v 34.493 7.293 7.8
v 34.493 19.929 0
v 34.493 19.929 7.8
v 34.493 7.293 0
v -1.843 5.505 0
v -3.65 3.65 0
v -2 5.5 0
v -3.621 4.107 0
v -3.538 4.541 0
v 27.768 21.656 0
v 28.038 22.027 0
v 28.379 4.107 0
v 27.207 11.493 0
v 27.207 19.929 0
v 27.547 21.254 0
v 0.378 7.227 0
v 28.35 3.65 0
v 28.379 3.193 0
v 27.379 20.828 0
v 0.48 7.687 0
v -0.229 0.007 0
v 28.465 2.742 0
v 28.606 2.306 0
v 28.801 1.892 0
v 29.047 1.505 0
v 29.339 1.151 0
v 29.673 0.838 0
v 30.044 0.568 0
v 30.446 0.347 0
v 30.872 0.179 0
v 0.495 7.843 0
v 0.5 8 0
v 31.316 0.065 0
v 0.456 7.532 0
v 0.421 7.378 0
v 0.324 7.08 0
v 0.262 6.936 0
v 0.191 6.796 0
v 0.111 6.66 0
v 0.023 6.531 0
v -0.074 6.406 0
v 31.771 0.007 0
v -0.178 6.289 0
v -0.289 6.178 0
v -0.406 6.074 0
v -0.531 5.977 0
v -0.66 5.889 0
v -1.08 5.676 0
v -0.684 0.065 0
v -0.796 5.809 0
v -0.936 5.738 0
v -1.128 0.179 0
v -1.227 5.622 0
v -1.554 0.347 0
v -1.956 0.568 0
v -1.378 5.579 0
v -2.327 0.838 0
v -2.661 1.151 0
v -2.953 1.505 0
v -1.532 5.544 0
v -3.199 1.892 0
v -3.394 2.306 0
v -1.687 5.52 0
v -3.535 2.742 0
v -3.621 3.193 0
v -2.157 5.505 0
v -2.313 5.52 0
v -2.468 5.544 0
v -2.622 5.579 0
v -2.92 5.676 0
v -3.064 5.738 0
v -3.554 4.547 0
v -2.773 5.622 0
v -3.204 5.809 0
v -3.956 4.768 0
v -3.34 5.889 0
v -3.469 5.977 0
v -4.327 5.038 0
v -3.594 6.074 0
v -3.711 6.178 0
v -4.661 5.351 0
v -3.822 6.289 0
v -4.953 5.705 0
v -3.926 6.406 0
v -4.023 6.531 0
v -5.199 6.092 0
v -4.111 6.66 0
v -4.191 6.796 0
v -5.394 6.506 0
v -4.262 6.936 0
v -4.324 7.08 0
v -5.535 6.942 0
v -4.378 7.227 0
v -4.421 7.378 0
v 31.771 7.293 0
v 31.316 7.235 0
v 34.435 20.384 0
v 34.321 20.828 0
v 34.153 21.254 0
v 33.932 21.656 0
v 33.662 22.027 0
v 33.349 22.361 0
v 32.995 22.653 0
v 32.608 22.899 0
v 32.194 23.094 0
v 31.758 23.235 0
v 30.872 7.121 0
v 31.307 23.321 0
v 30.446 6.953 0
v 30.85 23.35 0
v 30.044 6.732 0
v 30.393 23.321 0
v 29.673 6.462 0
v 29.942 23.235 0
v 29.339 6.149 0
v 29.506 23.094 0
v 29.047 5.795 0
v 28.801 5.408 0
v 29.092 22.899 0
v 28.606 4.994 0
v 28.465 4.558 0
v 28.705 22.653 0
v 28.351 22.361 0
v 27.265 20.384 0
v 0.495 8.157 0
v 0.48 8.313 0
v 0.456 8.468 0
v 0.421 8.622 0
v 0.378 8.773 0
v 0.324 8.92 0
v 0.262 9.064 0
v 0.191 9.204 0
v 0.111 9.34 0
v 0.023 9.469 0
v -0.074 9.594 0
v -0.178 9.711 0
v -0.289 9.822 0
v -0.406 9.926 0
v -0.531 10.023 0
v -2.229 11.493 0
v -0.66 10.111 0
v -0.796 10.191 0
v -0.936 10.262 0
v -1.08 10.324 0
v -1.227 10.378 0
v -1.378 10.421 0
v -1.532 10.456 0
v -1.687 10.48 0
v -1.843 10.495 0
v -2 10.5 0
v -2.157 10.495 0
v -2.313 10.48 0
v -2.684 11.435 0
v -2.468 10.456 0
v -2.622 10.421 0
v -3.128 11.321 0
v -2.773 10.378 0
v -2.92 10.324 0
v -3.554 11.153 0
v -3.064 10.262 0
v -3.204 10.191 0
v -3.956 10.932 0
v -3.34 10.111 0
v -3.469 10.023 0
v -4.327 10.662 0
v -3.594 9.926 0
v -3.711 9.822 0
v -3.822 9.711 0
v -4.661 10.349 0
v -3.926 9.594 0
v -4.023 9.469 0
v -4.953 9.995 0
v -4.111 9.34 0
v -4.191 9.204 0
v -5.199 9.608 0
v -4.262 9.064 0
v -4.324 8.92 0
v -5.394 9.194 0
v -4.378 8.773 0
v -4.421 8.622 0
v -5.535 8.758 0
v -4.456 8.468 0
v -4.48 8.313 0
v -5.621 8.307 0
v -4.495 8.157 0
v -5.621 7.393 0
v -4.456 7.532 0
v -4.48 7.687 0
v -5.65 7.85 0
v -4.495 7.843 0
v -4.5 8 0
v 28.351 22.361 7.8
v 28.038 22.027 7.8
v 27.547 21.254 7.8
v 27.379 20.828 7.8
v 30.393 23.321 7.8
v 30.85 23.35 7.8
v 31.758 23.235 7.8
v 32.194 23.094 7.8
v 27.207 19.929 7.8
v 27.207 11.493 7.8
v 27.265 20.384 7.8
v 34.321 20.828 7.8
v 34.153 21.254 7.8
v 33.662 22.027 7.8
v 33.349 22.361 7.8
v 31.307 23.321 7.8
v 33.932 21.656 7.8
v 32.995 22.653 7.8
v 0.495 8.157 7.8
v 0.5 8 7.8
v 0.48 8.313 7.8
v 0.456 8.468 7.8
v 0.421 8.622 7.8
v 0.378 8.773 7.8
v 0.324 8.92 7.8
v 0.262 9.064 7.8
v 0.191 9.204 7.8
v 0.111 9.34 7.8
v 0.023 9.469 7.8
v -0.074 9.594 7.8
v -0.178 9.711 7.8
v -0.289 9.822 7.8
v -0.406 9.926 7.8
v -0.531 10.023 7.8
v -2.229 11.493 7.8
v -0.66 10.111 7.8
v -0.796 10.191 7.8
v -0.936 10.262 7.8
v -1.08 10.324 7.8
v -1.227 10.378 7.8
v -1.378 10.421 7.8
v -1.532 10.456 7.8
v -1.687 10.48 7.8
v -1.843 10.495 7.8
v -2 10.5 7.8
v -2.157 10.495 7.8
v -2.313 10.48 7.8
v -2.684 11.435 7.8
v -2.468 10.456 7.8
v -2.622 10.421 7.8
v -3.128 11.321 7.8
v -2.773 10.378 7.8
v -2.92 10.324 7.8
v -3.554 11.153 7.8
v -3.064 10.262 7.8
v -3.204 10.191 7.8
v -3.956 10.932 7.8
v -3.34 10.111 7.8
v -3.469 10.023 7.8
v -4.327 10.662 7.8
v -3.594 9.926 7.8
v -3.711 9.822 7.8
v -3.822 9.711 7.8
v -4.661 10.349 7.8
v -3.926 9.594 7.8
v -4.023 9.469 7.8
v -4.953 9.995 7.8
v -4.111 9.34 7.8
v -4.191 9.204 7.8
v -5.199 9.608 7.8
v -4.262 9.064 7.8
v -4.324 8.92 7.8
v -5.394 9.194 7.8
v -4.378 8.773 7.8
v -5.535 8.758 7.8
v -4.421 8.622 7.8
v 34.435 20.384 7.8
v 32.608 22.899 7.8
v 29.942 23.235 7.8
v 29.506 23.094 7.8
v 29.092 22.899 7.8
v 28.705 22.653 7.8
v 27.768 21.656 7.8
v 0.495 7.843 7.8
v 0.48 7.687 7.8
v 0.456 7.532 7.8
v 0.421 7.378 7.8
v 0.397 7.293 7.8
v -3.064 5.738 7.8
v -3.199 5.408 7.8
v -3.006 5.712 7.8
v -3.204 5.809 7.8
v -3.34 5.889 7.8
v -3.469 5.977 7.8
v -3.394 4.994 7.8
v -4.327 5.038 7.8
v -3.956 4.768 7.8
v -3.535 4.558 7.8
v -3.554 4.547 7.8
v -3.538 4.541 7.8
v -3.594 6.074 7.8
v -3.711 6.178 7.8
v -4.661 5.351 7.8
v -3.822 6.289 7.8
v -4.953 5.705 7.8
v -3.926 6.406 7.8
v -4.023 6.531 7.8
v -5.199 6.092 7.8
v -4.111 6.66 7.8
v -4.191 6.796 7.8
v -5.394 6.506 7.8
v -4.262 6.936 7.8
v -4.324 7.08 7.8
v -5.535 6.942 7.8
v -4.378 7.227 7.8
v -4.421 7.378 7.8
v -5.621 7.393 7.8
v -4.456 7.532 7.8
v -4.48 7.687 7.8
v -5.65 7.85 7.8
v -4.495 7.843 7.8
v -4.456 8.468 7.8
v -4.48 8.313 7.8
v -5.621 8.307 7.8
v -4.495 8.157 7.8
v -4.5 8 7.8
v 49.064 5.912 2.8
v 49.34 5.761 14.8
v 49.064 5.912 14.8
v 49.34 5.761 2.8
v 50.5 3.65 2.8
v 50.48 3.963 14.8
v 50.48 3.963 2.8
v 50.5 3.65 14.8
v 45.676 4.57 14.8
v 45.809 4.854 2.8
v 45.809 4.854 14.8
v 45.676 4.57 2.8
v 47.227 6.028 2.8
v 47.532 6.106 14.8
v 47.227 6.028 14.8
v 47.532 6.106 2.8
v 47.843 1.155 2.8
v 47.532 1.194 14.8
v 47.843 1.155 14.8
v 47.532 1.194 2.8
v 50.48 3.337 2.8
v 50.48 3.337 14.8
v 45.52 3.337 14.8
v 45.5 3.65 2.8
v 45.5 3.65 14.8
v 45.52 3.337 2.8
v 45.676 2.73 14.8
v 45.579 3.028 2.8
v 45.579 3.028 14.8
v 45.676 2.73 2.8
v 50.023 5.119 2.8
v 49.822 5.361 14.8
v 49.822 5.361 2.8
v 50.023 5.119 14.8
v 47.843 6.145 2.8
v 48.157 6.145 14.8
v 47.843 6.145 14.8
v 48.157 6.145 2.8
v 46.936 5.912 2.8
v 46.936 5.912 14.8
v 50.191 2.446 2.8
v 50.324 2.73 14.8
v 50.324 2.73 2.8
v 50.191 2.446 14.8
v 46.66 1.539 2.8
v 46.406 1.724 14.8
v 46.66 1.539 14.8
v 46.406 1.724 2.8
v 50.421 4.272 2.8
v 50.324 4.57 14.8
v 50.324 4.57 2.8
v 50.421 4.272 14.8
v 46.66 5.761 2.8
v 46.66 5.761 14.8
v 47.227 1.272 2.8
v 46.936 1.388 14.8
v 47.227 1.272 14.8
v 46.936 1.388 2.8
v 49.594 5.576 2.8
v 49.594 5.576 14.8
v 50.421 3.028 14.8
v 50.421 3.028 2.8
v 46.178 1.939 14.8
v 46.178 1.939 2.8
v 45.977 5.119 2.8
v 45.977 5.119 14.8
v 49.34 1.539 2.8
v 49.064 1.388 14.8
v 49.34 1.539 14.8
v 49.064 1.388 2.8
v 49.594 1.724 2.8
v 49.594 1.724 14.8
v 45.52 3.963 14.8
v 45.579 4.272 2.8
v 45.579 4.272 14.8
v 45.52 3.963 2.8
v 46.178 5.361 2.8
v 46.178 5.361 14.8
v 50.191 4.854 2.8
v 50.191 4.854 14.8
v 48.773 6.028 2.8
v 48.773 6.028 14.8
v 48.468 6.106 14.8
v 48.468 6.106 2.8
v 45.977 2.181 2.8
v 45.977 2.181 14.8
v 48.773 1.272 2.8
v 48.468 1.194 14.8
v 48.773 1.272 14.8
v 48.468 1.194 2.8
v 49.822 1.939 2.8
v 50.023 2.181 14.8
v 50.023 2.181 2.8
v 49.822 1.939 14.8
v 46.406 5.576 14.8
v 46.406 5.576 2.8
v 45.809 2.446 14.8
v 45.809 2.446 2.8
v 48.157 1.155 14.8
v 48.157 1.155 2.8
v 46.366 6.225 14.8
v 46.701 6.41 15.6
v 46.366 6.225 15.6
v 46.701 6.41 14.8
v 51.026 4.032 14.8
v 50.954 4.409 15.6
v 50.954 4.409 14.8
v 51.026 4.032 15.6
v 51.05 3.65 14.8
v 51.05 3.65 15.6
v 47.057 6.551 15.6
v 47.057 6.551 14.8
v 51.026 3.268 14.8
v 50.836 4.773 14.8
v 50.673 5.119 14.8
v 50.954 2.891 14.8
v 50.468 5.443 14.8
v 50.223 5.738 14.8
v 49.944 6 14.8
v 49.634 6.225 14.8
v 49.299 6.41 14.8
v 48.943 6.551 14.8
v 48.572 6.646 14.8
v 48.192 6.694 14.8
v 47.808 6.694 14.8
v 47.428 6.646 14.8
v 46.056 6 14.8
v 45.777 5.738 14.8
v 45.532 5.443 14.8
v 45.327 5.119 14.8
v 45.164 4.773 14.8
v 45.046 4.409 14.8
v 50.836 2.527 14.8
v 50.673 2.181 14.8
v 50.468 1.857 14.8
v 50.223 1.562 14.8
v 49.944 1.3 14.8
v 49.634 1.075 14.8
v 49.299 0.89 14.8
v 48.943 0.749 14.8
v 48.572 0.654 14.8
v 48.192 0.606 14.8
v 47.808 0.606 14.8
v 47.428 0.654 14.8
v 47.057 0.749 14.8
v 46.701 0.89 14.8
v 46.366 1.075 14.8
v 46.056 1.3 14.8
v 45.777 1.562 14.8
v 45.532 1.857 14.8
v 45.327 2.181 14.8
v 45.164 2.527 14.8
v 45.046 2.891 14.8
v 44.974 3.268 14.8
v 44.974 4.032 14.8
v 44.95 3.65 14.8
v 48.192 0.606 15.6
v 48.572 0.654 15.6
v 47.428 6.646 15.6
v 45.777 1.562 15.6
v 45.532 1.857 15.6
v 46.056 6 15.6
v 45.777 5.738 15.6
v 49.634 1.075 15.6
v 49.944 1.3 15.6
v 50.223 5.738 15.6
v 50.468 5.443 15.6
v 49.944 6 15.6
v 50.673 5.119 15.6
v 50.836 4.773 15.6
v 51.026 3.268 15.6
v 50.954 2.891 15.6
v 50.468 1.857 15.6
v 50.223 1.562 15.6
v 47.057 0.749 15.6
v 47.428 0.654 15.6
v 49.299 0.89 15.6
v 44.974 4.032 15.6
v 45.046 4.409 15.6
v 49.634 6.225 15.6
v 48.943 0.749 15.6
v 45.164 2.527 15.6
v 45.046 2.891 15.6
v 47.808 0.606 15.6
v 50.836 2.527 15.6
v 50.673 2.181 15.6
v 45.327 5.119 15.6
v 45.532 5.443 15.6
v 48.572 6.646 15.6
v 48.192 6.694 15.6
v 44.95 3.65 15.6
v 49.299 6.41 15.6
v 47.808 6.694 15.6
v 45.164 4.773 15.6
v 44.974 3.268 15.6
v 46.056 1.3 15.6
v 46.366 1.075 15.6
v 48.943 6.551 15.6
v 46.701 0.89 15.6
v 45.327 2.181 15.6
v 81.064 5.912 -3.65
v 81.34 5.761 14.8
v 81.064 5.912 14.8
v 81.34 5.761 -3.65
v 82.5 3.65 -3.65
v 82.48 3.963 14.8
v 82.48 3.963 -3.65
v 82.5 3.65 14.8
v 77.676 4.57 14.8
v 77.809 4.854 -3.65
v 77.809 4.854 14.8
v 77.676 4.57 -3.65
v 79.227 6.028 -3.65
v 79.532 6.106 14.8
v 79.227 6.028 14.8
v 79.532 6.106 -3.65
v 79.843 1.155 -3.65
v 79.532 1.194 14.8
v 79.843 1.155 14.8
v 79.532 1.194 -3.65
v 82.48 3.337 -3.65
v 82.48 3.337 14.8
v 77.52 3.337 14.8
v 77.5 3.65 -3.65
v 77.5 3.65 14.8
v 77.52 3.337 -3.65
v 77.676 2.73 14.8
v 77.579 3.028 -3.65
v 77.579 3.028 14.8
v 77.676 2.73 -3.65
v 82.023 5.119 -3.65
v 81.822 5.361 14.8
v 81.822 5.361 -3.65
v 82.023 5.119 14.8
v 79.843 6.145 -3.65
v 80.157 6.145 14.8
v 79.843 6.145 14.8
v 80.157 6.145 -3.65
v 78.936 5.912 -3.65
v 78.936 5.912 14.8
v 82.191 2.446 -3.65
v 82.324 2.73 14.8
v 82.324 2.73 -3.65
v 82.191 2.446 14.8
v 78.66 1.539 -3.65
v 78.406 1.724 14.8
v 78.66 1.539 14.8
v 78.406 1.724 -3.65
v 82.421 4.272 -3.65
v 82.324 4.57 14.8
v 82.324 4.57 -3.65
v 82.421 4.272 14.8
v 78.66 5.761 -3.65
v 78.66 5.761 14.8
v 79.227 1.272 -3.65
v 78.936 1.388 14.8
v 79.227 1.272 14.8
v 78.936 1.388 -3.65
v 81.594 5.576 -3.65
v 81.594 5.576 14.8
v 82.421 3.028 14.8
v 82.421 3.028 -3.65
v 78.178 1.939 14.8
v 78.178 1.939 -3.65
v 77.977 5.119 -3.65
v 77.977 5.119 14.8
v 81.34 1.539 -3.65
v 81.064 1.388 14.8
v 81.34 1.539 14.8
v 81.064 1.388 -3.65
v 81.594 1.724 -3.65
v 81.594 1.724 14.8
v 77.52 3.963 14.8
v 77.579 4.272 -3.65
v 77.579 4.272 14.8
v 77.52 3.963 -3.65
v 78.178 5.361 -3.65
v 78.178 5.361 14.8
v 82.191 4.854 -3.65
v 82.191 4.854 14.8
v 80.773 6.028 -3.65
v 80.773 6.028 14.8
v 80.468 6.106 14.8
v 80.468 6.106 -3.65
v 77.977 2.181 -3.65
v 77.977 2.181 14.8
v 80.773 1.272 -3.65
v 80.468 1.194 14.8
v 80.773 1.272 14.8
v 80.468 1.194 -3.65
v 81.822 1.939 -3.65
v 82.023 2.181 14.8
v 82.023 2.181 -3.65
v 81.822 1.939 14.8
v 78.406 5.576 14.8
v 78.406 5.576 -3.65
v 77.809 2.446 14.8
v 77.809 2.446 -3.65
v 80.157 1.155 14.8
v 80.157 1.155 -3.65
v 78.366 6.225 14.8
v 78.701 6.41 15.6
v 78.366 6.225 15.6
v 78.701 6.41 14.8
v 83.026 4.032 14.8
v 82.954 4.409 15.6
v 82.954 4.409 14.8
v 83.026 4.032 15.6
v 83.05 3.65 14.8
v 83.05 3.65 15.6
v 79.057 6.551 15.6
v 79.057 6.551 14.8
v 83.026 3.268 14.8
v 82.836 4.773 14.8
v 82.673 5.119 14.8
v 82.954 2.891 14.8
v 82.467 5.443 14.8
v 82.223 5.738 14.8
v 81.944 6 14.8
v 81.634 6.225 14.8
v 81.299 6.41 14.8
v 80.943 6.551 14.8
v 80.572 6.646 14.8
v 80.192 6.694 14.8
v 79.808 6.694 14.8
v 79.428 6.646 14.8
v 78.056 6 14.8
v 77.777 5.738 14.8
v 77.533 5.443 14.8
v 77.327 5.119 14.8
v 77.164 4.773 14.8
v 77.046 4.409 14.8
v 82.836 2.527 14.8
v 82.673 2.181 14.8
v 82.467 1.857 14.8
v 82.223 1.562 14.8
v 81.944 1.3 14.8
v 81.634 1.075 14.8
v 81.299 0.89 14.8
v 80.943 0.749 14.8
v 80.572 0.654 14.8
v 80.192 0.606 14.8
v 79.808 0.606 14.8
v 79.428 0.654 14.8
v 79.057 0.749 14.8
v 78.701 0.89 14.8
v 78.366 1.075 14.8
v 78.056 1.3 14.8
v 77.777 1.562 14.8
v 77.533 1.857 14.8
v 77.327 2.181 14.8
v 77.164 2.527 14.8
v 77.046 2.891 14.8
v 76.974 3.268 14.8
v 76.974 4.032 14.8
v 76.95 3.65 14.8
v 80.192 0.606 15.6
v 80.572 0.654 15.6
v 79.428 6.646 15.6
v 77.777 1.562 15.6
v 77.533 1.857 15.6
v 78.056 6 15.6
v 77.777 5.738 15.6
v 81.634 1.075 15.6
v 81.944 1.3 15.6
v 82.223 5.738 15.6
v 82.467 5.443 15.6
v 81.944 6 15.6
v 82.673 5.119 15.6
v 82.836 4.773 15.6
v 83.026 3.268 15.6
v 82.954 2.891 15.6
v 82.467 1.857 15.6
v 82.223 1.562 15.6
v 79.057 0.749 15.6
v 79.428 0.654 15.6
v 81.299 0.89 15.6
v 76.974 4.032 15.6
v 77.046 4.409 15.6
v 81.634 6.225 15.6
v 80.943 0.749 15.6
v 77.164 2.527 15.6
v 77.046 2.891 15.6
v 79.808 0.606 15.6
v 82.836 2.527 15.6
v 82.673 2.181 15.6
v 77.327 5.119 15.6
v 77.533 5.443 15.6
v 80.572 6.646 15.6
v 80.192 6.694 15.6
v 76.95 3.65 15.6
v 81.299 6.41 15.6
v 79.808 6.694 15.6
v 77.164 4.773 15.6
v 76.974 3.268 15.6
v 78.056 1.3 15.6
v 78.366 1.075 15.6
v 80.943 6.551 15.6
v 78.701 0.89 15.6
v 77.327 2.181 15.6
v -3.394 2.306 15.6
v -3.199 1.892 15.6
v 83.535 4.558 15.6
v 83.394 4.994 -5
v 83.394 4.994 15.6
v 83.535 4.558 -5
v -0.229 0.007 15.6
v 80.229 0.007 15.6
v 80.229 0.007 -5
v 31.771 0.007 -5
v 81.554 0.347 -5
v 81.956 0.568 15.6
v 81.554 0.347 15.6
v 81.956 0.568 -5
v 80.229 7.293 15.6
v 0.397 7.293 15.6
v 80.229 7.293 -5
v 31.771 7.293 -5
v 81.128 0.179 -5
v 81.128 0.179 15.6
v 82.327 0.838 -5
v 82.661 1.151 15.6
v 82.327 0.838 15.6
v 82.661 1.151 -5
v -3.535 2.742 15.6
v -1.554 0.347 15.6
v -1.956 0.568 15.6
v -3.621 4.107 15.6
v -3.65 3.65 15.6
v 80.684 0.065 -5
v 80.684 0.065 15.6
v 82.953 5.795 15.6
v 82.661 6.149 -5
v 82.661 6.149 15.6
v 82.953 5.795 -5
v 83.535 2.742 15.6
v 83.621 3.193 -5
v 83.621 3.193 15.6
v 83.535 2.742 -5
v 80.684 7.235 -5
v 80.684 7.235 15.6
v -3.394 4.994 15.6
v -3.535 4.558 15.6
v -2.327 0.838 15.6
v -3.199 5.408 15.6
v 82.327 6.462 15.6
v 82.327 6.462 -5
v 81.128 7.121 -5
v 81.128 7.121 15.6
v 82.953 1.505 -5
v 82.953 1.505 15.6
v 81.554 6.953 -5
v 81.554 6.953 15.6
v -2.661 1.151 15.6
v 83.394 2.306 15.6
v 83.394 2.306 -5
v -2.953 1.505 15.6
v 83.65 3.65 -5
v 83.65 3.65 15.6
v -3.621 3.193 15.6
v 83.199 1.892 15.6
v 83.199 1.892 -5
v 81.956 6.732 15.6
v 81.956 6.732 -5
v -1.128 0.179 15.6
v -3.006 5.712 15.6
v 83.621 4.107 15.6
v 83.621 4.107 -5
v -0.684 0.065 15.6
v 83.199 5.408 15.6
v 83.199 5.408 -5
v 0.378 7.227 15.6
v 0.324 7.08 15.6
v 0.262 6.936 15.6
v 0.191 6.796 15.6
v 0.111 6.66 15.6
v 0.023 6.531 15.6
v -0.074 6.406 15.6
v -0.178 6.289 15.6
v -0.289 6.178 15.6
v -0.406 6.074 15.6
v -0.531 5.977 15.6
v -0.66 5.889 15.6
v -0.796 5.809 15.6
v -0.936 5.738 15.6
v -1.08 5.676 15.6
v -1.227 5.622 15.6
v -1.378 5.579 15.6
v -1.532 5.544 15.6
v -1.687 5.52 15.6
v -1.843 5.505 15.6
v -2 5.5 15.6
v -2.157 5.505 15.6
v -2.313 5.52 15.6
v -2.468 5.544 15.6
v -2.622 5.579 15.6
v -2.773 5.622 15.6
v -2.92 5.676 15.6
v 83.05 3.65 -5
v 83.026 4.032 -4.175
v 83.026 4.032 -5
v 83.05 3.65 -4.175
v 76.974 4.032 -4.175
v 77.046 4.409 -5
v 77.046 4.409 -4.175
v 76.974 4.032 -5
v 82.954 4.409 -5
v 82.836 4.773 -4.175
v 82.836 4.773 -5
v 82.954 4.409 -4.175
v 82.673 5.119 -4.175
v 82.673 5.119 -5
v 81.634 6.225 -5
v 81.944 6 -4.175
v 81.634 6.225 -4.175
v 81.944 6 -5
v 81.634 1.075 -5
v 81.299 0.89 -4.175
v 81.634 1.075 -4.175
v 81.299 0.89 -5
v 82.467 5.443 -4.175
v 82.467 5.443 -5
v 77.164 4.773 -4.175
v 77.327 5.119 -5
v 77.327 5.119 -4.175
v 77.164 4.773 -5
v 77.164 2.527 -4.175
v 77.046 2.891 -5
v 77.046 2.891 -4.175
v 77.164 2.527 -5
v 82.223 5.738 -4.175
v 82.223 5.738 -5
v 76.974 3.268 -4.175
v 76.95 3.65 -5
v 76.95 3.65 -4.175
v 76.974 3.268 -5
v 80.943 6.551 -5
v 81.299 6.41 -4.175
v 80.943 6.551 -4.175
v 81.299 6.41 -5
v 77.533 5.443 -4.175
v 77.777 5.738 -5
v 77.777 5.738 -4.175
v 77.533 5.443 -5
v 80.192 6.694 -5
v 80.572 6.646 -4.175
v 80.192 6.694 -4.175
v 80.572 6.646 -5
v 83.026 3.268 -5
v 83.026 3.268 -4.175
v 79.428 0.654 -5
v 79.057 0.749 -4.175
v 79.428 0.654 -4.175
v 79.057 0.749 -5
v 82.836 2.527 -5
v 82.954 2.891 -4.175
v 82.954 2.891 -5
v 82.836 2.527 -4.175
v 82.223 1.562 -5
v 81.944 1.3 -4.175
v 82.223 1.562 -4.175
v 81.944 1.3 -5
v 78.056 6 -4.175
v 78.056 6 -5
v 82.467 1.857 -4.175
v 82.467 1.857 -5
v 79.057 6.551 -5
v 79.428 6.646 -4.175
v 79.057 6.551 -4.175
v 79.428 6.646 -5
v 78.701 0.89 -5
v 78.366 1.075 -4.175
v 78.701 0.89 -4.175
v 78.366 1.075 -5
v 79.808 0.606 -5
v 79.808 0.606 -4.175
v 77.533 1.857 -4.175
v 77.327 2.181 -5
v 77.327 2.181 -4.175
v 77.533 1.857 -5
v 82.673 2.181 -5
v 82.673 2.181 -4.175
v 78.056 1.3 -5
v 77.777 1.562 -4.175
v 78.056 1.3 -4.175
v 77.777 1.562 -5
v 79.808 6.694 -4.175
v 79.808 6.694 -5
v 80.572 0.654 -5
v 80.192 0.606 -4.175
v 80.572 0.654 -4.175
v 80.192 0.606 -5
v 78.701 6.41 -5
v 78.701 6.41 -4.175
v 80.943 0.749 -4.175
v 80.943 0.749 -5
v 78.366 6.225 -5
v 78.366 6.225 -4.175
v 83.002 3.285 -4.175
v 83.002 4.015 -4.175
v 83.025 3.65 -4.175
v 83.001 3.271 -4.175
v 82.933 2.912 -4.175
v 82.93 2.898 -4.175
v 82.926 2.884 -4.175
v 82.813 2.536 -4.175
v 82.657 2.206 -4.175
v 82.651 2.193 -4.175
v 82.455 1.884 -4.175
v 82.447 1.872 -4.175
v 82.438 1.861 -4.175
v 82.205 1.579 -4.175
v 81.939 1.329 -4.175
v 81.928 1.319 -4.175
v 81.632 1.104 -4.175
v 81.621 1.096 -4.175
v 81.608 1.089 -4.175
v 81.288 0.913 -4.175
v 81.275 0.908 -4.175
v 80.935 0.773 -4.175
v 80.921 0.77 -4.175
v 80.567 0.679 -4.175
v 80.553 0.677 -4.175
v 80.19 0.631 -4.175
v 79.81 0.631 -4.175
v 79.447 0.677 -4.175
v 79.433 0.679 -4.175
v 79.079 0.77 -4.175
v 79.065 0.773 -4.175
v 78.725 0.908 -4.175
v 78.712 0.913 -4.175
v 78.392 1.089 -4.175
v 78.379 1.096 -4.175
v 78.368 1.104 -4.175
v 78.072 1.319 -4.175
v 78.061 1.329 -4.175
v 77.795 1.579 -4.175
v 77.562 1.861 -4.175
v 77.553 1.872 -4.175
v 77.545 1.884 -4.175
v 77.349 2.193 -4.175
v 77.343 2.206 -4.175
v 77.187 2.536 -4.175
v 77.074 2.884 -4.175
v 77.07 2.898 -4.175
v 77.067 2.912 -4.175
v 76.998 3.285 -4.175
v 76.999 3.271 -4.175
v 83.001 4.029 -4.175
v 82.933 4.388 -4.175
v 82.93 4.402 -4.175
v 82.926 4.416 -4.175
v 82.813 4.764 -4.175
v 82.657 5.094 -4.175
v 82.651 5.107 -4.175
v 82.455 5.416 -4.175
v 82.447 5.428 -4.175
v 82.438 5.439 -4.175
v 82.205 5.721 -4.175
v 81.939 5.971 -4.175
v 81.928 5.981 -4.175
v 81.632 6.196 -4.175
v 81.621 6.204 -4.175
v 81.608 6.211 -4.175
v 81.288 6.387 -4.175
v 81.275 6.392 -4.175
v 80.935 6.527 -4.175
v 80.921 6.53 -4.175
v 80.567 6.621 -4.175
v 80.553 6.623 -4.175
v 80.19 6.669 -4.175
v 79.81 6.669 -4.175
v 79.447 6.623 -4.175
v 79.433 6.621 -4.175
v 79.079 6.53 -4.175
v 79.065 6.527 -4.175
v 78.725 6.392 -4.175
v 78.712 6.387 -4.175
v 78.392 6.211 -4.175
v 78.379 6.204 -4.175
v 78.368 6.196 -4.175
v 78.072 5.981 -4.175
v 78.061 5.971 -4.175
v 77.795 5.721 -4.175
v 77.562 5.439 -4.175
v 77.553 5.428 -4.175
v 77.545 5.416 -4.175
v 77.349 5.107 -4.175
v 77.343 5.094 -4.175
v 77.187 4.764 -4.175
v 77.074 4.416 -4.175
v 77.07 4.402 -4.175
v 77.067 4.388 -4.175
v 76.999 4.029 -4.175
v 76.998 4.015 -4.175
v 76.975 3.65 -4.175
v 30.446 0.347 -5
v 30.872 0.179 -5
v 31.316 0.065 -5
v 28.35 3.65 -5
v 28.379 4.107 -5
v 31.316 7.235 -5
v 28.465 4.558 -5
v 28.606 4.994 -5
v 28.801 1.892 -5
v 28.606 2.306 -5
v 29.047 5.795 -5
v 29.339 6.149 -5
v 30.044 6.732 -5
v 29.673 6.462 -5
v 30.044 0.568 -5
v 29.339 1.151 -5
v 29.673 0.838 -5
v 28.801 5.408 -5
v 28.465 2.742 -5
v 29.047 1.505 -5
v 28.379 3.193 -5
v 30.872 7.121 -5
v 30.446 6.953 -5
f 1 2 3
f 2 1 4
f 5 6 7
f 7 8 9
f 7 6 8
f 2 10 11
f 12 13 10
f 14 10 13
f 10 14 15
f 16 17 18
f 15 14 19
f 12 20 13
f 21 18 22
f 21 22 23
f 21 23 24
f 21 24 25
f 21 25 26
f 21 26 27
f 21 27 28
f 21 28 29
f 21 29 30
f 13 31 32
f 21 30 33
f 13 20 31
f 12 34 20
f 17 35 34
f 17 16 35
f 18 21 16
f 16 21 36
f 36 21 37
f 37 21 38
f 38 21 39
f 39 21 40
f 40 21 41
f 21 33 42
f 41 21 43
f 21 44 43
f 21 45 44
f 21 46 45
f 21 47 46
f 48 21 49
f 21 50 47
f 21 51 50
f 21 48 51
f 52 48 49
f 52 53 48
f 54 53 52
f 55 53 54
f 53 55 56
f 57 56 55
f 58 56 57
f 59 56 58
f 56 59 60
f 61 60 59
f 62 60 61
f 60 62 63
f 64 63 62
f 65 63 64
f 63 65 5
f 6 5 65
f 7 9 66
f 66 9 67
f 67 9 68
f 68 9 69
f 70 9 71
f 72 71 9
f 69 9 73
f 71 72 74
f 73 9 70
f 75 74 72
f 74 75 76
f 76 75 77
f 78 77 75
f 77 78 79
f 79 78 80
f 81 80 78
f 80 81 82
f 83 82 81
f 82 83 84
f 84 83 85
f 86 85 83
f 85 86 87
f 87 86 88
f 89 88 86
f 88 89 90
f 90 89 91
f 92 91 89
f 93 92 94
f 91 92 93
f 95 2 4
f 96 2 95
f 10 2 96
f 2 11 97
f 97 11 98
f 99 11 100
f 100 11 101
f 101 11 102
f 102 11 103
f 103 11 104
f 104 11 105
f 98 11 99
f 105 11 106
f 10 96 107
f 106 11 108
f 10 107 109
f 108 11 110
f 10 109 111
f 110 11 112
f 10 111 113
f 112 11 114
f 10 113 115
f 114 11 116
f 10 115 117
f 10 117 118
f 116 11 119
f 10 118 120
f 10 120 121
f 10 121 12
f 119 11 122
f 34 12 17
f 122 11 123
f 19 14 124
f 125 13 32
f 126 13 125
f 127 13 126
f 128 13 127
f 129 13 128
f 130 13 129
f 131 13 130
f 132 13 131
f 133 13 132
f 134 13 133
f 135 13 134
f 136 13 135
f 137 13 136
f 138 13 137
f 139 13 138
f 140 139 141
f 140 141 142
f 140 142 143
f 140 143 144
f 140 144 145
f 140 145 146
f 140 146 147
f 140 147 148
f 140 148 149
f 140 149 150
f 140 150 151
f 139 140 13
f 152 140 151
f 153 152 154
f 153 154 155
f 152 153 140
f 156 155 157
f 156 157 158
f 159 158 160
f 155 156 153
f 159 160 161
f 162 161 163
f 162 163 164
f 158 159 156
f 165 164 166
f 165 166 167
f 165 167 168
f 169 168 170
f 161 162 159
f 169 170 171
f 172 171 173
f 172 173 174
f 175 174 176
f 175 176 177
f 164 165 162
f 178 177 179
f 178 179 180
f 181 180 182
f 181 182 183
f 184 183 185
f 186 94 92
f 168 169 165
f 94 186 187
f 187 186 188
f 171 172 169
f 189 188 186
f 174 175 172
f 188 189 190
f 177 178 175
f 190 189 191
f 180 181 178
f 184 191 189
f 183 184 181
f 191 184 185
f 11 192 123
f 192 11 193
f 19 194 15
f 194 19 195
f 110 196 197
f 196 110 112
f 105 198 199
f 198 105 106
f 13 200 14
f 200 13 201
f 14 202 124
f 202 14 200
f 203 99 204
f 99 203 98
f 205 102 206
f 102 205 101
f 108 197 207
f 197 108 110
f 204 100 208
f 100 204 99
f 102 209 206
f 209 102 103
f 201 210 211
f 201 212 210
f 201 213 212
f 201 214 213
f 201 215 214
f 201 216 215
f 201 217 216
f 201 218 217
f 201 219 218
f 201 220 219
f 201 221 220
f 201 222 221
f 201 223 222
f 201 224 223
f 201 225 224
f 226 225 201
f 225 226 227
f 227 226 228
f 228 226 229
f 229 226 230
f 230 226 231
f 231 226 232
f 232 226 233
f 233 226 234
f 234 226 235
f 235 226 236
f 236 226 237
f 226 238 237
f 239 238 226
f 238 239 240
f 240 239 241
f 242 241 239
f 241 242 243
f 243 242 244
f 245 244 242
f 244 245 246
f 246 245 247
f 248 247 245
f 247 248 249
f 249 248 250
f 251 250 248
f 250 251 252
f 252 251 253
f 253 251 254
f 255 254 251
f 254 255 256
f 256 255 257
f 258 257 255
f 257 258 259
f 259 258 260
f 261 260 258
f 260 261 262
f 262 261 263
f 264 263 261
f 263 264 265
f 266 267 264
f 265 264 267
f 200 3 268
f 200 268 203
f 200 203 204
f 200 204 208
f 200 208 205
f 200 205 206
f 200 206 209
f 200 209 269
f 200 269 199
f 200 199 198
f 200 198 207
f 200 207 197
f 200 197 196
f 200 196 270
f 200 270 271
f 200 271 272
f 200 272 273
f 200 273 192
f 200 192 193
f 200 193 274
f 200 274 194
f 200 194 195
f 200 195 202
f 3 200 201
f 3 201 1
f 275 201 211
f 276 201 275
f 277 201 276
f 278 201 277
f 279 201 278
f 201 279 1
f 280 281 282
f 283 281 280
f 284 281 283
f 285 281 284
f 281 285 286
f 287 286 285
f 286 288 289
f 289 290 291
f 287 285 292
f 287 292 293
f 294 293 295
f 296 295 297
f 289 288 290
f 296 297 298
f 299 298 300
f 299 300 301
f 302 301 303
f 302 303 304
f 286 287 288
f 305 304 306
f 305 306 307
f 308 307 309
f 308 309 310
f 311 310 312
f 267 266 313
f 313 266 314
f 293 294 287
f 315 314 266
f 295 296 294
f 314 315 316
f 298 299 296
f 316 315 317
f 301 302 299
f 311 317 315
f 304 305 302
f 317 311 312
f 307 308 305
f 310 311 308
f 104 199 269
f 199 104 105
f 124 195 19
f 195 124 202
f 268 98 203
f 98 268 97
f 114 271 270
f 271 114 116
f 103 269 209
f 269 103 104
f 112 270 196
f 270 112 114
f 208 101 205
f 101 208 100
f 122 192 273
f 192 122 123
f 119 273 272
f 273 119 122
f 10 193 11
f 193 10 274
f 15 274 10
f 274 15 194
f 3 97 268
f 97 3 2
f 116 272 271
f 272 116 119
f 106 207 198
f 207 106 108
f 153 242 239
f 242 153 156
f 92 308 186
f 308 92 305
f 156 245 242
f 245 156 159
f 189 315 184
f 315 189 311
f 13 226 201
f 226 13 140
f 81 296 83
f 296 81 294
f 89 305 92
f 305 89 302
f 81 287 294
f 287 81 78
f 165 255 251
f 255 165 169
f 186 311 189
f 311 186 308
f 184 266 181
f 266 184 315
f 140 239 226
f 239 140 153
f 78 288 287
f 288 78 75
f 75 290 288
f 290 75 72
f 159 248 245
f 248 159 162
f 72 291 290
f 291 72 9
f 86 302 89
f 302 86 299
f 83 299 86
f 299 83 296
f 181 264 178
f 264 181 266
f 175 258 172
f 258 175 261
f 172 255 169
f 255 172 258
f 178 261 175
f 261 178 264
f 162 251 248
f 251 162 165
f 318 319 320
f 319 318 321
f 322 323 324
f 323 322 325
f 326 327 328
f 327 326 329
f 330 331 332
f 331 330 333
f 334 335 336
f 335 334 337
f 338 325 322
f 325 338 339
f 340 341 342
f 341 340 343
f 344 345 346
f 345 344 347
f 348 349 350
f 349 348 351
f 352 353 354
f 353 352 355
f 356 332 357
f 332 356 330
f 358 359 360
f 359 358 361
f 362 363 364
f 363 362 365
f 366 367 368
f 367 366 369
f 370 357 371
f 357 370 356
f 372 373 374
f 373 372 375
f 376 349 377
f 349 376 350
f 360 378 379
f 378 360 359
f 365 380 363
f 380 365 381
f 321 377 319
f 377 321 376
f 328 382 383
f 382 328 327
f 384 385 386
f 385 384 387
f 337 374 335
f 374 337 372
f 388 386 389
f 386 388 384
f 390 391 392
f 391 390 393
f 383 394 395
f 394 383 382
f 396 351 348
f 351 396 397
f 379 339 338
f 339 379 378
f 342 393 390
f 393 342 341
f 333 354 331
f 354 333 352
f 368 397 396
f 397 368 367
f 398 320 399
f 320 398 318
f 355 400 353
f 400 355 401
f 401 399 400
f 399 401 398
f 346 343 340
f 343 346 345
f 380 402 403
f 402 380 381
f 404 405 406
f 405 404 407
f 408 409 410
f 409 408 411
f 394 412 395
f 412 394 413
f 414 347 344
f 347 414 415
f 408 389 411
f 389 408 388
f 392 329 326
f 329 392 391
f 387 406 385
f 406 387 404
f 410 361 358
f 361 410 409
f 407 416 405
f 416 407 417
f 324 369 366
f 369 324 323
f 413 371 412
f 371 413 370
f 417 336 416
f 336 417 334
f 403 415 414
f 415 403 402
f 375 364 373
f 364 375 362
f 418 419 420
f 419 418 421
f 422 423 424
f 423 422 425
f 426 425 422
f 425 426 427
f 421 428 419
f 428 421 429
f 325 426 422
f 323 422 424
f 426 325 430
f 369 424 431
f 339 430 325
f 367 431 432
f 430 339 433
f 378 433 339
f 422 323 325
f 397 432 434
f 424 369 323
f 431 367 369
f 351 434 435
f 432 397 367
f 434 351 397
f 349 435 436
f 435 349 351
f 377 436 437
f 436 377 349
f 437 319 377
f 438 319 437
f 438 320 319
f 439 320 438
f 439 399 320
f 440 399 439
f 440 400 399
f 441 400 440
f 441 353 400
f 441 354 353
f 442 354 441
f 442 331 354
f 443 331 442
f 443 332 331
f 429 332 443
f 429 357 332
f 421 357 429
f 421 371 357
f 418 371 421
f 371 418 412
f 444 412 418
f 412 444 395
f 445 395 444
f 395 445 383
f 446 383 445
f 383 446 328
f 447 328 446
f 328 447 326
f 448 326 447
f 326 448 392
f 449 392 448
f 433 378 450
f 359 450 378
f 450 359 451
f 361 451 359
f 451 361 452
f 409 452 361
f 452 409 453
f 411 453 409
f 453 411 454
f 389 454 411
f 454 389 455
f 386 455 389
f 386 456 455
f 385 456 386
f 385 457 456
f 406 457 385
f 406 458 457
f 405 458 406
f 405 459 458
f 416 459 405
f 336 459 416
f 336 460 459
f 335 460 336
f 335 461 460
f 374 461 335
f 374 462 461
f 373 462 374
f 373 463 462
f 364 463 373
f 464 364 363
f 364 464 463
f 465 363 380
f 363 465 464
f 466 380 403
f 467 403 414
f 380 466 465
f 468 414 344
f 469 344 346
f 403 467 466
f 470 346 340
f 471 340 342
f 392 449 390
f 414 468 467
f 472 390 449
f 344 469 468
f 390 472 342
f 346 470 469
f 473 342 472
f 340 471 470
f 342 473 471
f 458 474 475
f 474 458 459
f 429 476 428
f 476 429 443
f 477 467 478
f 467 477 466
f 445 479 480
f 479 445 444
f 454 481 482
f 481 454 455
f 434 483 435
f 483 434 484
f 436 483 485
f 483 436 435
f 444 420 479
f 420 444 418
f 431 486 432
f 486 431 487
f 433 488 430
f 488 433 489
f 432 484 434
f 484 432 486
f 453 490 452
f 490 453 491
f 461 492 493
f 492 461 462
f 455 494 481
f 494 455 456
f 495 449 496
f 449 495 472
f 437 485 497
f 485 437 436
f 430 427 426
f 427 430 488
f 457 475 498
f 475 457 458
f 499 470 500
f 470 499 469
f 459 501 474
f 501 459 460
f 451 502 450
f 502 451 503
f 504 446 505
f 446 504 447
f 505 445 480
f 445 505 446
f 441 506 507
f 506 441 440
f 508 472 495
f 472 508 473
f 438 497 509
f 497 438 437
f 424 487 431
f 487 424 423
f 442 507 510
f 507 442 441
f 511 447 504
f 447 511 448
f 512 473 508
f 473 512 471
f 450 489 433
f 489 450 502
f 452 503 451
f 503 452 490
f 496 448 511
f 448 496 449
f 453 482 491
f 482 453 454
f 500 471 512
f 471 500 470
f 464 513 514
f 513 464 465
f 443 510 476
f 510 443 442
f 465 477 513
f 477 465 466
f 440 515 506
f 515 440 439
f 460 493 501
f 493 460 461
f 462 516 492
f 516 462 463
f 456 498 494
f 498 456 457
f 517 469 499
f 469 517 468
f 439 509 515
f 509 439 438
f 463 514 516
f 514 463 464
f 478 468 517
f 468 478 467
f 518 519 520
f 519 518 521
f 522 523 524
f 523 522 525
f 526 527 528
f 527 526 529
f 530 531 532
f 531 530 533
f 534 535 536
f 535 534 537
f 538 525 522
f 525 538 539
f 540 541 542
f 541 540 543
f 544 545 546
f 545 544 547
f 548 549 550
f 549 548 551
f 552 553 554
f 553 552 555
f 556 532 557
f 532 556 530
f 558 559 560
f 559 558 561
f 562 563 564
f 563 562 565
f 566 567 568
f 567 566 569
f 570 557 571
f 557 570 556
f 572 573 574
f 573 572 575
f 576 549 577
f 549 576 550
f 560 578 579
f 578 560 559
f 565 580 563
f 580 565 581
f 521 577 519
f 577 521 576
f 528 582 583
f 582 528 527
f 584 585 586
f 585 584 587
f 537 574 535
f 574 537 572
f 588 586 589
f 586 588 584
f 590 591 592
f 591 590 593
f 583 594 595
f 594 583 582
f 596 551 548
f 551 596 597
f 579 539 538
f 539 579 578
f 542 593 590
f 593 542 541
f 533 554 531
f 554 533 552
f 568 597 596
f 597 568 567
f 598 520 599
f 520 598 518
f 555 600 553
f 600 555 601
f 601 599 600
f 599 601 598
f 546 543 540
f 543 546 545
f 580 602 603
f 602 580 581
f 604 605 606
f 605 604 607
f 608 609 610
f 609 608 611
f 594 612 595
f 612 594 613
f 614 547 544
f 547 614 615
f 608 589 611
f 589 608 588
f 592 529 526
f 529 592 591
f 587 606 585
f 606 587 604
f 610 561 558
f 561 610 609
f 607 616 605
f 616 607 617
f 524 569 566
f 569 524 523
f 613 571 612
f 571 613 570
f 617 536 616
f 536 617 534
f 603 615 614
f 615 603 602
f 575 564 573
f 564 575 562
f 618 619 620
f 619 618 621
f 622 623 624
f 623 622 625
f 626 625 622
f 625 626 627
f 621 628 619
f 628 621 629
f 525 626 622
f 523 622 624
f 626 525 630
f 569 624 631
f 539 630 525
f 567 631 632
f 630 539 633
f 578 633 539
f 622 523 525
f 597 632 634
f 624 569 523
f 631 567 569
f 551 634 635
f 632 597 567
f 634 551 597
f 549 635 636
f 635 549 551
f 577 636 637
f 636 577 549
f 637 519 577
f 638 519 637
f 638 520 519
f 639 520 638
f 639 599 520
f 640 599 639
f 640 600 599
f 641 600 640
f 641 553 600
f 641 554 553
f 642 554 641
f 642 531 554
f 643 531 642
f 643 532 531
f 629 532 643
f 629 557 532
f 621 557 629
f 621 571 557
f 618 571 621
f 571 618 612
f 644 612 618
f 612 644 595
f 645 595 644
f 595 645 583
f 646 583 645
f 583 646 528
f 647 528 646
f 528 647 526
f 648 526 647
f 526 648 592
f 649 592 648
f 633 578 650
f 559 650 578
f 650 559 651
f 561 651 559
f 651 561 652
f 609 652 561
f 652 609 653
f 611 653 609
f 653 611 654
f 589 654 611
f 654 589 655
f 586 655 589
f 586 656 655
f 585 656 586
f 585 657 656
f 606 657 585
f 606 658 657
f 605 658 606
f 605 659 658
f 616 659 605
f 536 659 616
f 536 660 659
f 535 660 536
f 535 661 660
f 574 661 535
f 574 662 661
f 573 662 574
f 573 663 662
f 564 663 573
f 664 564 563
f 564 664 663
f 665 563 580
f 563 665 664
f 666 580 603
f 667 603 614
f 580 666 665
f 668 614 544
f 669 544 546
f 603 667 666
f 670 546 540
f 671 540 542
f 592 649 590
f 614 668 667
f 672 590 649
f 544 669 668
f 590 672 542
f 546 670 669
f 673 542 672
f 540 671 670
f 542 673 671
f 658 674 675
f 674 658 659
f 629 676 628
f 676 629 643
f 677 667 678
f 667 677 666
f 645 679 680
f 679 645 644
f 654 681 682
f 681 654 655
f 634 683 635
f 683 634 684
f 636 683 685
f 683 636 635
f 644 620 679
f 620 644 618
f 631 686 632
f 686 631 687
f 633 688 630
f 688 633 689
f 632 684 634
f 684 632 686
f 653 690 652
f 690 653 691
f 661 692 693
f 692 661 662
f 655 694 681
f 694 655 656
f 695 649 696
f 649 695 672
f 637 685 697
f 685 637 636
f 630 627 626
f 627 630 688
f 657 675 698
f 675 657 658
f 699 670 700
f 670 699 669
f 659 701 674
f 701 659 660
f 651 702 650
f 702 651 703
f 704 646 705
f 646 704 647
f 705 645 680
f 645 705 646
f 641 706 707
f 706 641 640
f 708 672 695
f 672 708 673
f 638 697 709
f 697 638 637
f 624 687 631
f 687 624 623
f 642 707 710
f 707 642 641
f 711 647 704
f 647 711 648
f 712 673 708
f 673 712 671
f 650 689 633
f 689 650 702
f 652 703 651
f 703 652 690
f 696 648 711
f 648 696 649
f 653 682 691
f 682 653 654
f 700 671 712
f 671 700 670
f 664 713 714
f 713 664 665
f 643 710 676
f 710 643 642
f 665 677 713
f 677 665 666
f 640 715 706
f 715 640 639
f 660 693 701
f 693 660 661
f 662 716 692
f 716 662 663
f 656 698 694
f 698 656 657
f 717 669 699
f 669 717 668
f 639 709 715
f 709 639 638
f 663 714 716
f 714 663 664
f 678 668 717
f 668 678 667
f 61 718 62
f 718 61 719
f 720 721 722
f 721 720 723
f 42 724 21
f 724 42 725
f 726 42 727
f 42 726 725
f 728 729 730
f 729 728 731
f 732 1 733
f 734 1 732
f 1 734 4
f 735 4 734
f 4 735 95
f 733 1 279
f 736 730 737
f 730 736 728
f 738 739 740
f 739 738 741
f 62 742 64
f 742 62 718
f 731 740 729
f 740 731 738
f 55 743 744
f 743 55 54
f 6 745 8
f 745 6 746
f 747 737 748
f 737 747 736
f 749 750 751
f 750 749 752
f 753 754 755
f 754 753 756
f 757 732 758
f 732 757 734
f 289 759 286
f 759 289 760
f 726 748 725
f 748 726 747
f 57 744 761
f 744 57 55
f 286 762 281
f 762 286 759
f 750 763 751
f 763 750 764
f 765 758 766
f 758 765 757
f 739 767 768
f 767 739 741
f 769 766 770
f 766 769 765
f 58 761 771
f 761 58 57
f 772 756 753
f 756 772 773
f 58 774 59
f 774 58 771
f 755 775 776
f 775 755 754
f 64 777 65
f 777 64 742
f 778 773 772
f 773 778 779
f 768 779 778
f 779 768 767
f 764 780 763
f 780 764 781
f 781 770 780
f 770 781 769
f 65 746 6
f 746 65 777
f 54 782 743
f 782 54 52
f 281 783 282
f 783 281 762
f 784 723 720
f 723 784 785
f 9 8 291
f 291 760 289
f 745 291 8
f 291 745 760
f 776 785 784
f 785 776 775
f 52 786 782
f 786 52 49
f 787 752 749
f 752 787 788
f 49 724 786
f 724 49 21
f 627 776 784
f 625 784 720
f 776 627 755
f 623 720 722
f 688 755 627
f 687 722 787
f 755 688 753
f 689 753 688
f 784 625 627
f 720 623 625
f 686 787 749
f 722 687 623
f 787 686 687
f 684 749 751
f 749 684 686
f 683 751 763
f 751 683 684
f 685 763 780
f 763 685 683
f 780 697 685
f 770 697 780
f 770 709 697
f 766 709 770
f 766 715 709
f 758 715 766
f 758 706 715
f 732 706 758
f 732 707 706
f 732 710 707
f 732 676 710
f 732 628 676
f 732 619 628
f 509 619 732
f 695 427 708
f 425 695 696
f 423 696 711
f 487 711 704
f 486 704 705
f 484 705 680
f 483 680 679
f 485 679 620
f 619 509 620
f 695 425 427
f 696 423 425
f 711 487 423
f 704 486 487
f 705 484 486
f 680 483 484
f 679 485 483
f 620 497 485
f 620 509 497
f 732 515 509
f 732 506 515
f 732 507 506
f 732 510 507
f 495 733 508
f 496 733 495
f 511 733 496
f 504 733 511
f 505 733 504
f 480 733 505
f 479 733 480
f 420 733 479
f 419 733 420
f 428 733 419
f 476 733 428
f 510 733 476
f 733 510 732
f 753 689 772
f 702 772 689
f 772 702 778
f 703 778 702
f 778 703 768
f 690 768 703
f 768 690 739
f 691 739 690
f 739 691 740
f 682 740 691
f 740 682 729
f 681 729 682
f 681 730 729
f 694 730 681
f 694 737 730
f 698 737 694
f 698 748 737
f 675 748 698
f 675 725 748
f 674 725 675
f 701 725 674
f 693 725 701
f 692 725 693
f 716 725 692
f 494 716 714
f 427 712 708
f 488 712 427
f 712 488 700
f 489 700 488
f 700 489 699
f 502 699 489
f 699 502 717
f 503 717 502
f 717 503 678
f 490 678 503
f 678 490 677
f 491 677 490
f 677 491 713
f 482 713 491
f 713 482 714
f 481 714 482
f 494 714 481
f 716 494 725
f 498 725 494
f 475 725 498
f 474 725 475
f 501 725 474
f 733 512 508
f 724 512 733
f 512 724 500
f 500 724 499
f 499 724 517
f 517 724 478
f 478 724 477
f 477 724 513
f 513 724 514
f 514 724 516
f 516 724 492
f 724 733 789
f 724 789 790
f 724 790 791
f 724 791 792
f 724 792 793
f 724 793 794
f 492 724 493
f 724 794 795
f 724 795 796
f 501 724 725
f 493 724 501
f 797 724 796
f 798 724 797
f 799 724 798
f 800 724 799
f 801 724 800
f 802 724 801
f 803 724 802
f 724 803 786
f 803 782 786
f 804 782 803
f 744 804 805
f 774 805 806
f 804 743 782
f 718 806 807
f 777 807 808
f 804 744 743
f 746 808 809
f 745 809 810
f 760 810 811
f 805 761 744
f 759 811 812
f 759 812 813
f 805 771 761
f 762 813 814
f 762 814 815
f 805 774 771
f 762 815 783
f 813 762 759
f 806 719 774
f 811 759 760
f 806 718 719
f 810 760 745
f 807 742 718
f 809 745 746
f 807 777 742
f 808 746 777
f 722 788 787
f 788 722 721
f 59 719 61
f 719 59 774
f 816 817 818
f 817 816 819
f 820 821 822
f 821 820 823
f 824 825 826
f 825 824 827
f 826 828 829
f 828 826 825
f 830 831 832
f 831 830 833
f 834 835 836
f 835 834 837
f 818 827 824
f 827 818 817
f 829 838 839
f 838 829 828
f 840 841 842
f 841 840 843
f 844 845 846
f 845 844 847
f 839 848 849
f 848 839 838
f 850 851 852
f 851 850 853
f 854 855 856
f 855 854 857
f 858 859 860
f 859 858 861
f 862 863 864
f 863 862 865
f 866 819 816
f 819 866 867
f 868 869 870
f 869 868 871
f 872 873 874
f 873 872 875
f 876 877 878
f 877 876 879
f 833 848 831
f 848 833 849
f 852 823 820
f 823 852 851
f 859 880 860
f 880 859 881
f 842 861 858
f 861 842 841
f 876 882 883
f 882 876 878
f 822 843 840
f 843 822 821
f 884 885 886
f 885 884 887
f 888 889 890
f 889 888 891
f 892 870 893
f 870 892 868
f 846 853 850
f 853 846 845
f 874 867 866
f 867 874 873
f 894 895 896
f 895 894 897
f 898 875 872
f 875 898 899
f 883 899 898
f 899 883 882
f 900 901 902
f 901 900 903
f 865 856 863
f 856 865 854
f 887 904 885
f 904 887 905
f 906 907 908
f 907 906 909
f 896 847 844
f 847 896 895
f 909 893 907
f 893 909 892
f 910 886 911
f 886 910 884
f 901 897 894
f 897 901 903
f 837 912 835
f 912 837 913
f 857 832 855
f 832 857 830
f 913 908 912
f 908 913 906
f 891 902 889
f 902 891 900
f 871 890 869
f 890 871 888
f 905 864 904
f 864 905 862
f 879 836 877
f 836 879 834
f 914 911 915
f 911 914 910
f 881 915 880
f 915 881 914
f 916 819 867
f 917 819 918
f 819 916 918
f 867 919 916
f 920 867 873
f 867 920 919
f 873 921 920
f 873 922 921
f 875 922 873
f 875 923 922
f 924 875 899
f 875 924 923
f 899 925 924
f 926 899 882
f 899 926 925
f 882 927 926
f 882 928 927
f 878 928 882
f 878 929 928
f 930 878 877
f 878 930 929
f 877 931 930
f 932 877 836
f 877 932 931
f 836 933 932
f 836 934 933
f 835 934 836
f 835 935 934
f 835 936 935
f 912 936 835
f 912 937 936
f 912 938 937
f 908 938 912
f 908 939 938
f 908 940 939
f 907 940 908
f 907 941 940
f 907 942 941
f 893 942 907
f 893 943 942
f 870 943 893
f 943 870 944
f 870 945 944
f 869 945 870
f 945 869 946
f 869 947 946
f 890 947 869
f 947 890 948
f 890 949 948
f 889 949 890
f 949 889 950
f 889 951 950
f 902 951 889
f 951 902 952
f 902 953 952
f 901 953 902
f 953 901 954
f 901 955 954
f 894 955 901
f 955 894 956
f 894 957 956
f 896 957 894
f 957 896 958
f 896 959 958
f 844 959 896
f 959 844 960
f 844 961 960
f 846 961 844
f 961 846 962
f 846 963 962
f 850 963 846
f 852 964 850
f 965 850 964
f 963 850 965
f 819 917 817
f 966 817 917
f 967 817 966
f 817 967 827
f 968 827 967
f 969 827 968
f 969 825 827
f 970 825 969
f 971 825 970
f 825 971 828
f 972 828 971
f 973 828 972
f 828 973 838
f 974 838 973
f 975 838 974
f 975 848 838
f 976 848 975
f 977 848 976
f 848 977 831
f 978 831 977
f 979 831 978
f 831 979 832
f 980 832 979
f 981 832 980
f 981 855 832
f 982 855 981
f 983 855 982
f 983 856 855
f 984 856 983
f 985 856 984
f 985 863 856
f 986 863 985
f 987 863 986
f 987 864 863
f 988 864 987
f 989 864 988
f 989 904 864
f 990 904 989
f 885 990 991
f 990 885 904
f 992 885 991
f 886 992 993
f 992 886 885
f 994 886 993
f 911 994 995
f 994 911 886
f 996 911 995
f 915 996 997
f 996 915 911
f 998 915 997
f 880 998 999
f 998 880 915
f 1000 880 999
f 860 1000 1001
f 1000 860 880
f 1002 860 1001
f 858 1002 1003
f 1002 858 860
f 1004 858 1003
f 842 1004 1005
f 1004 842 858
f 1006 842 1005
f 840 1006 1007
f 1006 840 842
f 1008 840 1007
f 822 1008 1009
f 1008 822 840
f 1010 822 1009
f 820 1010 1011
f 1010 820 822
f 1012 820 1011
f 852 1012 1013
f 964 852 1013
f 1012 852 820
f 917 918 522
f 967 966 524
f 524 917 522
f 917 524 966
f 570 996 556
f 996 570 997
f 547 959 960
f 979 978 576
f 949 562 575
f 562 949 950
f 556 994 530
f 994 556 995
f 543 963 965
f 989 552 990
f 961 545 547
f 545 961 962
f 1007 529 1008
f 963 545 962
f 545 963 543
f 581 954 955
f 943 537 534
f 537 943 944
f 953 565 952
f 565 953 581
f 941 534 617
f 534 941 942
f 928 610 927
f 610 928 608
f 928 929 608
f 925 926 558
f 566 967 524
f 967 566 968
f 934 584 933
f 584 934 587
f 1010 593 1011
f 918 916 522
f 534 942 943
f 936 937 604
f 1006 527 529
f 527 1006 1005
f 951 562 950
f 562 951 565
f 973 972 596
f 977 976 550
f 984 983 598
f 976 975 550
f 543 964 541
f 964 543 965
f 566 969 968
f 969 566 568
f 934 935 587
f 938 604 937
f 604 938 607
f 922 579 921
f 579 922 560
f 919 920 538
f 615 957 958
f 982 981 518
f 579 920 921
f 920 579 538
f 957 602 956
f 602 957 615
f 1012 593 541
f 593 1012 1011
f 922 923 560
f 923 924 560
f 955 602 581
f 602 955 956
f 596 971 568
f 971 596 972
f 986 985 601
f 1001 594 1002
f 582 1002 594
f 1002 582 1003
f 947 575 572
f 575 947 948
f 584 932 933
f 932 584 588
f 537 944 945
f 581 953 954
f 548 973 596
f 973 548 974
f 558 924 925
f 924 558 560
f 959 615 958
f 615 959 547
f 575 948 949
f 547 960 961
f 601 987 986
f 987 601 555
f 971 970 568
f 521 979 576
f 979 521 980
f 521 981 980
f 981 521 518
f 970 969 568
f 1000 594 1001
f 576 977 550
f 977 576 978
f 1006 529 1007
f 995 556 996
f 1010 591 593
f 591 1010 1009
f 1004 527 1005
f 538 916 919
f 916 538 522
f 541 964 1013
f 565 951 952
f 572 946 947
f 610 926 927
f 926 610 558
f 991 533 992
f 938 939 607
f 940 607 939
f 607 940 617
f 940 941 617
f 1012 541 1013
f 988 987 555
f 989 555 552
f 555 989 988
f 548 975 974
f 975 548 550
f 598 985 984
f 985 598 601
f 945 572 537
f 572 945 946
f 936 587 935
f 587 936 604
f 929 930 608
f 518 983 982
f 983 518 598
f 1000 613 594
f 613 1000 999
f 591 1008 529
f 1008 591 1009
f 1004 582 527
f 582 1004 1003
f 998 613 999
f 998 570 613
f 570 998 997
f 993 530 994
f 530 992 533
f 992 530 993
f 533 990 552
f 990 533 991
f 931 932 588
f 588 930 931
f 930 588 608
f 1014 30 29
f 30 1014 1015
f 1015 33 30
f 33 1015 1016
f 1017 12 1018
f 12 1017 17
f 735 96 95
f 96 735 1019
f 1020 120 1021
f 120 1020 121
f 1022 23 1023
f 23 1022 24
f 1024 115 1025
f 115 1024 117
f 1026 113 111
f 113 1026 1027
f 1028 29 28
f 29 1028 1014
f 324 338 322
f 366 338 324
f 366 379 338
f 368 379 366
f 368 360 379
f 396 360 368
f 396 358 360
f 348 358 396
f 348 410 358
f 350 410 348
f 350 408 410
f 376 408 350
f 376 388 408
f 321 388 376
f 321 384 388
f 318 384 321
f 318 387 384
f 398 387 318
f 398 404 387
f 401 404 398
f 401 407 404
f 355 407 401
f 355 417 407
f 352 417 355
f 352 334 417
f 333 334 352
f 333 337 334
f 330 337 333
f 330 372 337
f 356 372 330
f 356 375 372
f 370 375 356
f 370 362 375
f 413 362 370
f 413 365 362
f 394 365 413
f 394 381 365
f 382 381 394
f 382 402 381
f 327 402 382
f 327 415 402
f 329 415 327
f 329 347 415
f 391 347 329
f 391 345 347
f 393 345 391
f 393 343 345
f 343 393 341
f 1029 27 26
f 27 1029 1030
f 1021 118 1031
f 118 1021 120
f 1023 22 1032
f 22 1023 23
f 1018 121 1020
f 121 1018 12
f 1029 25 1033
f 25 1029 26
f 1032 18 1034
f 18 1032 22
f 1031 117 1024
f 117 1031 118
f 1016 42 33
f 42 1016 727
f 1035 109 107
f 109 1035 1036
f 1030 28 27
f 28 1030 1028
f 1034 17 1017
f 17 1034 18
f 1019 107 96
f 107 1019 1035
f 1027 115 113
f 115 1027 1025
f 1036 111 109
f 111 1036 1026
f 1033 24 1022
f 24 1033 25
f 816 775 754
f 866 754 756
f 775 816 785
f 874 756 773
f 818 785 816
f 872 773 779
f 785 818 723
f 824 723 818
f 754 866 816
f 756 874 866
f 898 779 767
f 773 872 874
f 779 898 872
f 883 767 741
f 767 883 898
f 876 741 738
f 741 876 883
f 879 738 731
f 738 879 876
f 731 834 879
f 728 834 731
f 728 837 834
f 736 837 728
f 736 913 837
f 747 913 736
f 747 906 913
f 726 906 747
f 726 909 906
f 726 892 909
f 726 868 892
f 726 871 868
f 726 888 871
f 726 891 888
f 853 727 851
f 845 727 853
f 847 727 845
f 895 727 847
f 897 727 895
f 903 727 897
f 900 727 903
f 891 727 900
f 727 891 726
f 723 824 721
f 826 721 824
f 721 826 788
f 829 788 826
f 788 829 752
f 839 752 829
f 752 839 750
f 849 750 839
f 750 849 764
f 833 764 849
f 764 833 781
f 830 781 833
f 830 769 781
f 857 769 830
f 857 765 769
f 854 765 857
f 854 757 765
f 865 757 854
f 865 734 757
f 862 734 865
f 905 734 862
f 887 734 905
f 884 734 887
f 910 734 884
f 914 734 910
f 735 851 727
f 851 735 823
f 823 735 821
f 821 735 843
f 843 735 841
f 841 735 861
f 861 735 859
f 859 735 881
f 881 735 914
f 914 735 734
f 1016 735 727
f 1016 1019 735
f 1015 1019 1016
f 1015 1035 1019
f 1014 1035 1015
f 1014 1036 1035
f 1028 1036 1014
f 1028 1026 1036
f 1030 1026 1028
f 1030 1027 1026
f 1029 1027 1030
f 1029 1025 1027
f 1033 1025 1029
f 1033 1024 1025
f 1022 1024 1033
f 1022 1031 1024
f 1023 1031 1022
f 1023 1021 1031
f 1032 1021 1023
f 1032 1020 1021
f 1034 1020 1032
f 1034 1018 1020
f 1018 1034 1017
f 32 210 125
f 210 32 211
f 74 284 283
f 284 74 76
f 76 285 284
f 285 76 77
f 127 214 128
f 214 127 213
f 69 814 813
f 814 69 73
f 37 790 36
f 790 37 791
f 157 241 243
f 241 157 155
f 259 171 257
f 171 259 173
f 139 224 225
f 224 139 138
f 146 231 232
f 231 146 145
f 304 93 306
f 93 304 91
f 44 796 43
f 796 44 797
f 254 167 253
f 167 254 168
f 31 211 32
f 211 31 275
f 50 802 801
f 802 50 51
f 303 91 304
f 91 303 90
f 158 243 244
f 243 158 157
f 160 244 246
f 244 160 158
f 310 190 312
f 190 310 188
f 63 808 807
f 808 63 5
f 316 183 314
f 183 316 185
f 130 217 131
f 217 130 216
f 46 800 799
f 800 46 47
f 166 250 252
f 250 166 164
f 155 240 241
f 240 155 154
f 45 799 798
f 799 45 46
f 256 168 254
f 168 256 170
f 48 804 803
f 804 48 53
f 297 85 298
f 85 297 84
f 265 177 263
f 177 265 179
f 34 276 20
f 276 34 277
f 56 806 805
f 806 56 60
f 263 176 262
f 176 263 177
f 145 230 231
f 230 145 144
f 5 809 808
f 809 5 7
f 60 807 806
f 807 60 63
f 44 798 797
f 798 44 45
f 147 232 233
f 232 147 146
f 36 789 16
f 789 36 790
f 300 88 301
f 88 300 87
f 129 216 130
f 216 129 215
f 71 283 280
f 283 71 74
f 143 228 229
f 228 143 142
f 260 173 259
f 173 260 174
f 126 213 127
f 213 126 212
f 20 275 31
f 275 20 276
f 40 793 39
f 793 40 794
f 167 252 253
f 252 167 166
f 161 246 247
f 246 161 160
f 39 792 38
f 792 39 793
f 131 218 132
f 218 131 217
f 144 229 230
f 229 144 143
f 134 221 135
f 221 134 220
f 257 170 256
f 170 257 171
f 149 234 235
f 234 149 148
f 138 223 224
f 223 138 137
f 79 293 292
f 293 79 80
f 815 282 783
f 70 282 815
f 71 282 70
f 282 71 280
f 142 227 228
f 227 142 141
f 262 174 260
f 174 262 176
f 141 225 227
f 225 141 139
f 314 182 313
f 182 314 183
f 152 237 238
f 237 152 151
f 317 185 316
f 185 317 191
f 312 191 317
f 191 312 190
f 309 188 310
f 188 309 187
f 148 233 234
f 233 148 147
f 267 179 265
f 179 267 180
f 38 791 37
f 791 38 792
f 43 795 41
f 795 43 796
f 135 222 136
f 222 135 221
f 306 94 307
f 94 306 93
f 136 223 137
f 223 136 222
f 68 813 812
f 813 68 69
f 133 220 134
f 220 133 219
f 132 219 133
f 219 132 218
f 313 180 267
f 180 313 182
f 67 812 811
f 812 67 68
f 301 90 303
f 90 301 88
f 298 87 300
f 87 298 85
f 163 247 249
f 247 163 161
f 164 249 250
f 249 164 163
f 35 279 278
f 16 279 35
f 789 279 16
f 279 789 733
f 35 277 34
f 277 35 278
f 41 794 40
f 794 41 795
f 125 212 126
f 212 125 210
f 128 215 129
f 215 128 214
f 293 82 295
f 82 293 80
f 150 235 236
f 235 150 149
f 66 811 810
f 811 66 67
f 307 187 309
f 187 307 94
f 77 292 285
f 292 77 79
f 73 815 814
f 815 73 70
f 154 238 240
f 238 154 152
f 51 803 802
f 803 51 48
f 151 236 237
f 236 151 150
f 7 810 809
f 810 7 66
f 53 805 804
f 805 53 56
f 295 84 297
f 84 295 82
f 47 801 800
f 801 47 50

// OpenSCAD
/*      
        Even More Customizable Straight LEGO Technic Beam
        Based on Customizable Straight LEGO Technic Beam
         and Parametric LEGO Technic Beam by "projunk" and "stevemedwin"
        
        www.thingiverse.com/thing:203935
        
        Also uploaded to Prusaprinters.org at https://www.prusaprinters.org/prints/33038-even-more-customizable-straight-beam-for-legotm-te
        
        Modified by Sam Kass
        November 2015
*/

// user parameters

// Hole sequence. o for round hole, + for plus-shaped hole, capital O for sideways hole, capital P for sideways plus, and x for blank spot. eg. "+ooo+", "oOo", "oxPxo", etc.
//holes = ""; // 5 holes with plusses at end

// If true, piece will be half-height
//half_height="false"; // [true, false]
difference() {
    union(){
        rotate([0,0,90])translate([3.7,-34.5,0])drawBeam("xxx",false,1);
        rotate([0,0,0])translate([-2,4.2,0])drawBeam("xxxxx",false,1);
        rotate([0,0,0])translate([0,0,0])drawBeam("xxxxxxoxxxo",false,2);
        rotate([0,0,0])translate([32,0,-5])drawBeam("xxxxxxo",false,1);
    }
    #translate([-2,8,-1])cylinder(d=5, h=17, $fn=100);
}

/* [Hidden] */

$fn=50*1.0;


Pitch = 8*1.0;
Radius1 = 5.0/2;
Radius2 = 6.1/2;
//Height = half_height=="true"?4.0:7.8*1.0;
Depth = 0.85*1.0;
Width = 7.3*1.0; 
Plus_Width = 2.0*1.0;

Overhang = 0.05*1.0;

module body(holes,Height)
{
    translate([0, Width/2, 0]) 
    hull() {
        cylinder(r=Width/2, h=Height);
        
        translate([(len(holes)-1)*Pitch, 0, 0]) 
            cylinder(r=Width/2, h=Height);
    }
}

module hole(Height)
{
    union()
	{
        //core
        cylinder(r=Radius1,h=Height);
        
        //top countersink
        translate([0,0,Height-Depth+Overhang]) 
            cylinder(r=Radius2,h=Depth);
        
        //bottom countersink
        translate([0,0,-Overhang/2]) 
            cylinder(r=Radius2,h=Depth);
        
        translate([0,0,Depth-Overhang])
            cylinder(h=(Radius2 - Radius1), r1=Radius2, r2=Radius1);
    }
}

module plus(Height) {

    union() {
        translate([-Plus_Width/2, -Radius1, -Overhang]) 
            cube([Plus_Width, Radius1*2, Height+Overhang*2]);
        translate([-Radius1, -Plus_Width/2, -Overhang]) 
            cube([Radius1*2, Plus_Width, Height+Overhang*2]);
    }
}

module drawBeam(holes,half_height,height)
{
    Height = height * (half_height==true?4.0:7.8*1.0);
    difference()
    {
        body(holes,Height);
       
        for (i = [1:len(holes)])
        {
            if (holes[i-1] == "+")
                translate([(i-1)*Pitch, Width/2, 0])
                    plus(Height);
            else if (holes[i-1] == "o")
                translate([(i-1)*Pitch, Width/2, 0])
                    hole(Height);
            else if (holes[i-1] == "O")
                rotate([90,0,0])
                translate([(i-1)*Pitch, Width/2,-Pitch+Depth/2])
                    hole(Height);
            else if (holes[i-1] == "P")
                rotate([90,0,0])
                translate([(i-1)*Pitch, Width/2,-Pitch+Depth/2])
                    plus(Height);
            else if (holes[i-1] == "x") {}
            else
                translate([(i-1)*Pitch, Width/2, 0])
                    hole(Height);
        }
    }
}
